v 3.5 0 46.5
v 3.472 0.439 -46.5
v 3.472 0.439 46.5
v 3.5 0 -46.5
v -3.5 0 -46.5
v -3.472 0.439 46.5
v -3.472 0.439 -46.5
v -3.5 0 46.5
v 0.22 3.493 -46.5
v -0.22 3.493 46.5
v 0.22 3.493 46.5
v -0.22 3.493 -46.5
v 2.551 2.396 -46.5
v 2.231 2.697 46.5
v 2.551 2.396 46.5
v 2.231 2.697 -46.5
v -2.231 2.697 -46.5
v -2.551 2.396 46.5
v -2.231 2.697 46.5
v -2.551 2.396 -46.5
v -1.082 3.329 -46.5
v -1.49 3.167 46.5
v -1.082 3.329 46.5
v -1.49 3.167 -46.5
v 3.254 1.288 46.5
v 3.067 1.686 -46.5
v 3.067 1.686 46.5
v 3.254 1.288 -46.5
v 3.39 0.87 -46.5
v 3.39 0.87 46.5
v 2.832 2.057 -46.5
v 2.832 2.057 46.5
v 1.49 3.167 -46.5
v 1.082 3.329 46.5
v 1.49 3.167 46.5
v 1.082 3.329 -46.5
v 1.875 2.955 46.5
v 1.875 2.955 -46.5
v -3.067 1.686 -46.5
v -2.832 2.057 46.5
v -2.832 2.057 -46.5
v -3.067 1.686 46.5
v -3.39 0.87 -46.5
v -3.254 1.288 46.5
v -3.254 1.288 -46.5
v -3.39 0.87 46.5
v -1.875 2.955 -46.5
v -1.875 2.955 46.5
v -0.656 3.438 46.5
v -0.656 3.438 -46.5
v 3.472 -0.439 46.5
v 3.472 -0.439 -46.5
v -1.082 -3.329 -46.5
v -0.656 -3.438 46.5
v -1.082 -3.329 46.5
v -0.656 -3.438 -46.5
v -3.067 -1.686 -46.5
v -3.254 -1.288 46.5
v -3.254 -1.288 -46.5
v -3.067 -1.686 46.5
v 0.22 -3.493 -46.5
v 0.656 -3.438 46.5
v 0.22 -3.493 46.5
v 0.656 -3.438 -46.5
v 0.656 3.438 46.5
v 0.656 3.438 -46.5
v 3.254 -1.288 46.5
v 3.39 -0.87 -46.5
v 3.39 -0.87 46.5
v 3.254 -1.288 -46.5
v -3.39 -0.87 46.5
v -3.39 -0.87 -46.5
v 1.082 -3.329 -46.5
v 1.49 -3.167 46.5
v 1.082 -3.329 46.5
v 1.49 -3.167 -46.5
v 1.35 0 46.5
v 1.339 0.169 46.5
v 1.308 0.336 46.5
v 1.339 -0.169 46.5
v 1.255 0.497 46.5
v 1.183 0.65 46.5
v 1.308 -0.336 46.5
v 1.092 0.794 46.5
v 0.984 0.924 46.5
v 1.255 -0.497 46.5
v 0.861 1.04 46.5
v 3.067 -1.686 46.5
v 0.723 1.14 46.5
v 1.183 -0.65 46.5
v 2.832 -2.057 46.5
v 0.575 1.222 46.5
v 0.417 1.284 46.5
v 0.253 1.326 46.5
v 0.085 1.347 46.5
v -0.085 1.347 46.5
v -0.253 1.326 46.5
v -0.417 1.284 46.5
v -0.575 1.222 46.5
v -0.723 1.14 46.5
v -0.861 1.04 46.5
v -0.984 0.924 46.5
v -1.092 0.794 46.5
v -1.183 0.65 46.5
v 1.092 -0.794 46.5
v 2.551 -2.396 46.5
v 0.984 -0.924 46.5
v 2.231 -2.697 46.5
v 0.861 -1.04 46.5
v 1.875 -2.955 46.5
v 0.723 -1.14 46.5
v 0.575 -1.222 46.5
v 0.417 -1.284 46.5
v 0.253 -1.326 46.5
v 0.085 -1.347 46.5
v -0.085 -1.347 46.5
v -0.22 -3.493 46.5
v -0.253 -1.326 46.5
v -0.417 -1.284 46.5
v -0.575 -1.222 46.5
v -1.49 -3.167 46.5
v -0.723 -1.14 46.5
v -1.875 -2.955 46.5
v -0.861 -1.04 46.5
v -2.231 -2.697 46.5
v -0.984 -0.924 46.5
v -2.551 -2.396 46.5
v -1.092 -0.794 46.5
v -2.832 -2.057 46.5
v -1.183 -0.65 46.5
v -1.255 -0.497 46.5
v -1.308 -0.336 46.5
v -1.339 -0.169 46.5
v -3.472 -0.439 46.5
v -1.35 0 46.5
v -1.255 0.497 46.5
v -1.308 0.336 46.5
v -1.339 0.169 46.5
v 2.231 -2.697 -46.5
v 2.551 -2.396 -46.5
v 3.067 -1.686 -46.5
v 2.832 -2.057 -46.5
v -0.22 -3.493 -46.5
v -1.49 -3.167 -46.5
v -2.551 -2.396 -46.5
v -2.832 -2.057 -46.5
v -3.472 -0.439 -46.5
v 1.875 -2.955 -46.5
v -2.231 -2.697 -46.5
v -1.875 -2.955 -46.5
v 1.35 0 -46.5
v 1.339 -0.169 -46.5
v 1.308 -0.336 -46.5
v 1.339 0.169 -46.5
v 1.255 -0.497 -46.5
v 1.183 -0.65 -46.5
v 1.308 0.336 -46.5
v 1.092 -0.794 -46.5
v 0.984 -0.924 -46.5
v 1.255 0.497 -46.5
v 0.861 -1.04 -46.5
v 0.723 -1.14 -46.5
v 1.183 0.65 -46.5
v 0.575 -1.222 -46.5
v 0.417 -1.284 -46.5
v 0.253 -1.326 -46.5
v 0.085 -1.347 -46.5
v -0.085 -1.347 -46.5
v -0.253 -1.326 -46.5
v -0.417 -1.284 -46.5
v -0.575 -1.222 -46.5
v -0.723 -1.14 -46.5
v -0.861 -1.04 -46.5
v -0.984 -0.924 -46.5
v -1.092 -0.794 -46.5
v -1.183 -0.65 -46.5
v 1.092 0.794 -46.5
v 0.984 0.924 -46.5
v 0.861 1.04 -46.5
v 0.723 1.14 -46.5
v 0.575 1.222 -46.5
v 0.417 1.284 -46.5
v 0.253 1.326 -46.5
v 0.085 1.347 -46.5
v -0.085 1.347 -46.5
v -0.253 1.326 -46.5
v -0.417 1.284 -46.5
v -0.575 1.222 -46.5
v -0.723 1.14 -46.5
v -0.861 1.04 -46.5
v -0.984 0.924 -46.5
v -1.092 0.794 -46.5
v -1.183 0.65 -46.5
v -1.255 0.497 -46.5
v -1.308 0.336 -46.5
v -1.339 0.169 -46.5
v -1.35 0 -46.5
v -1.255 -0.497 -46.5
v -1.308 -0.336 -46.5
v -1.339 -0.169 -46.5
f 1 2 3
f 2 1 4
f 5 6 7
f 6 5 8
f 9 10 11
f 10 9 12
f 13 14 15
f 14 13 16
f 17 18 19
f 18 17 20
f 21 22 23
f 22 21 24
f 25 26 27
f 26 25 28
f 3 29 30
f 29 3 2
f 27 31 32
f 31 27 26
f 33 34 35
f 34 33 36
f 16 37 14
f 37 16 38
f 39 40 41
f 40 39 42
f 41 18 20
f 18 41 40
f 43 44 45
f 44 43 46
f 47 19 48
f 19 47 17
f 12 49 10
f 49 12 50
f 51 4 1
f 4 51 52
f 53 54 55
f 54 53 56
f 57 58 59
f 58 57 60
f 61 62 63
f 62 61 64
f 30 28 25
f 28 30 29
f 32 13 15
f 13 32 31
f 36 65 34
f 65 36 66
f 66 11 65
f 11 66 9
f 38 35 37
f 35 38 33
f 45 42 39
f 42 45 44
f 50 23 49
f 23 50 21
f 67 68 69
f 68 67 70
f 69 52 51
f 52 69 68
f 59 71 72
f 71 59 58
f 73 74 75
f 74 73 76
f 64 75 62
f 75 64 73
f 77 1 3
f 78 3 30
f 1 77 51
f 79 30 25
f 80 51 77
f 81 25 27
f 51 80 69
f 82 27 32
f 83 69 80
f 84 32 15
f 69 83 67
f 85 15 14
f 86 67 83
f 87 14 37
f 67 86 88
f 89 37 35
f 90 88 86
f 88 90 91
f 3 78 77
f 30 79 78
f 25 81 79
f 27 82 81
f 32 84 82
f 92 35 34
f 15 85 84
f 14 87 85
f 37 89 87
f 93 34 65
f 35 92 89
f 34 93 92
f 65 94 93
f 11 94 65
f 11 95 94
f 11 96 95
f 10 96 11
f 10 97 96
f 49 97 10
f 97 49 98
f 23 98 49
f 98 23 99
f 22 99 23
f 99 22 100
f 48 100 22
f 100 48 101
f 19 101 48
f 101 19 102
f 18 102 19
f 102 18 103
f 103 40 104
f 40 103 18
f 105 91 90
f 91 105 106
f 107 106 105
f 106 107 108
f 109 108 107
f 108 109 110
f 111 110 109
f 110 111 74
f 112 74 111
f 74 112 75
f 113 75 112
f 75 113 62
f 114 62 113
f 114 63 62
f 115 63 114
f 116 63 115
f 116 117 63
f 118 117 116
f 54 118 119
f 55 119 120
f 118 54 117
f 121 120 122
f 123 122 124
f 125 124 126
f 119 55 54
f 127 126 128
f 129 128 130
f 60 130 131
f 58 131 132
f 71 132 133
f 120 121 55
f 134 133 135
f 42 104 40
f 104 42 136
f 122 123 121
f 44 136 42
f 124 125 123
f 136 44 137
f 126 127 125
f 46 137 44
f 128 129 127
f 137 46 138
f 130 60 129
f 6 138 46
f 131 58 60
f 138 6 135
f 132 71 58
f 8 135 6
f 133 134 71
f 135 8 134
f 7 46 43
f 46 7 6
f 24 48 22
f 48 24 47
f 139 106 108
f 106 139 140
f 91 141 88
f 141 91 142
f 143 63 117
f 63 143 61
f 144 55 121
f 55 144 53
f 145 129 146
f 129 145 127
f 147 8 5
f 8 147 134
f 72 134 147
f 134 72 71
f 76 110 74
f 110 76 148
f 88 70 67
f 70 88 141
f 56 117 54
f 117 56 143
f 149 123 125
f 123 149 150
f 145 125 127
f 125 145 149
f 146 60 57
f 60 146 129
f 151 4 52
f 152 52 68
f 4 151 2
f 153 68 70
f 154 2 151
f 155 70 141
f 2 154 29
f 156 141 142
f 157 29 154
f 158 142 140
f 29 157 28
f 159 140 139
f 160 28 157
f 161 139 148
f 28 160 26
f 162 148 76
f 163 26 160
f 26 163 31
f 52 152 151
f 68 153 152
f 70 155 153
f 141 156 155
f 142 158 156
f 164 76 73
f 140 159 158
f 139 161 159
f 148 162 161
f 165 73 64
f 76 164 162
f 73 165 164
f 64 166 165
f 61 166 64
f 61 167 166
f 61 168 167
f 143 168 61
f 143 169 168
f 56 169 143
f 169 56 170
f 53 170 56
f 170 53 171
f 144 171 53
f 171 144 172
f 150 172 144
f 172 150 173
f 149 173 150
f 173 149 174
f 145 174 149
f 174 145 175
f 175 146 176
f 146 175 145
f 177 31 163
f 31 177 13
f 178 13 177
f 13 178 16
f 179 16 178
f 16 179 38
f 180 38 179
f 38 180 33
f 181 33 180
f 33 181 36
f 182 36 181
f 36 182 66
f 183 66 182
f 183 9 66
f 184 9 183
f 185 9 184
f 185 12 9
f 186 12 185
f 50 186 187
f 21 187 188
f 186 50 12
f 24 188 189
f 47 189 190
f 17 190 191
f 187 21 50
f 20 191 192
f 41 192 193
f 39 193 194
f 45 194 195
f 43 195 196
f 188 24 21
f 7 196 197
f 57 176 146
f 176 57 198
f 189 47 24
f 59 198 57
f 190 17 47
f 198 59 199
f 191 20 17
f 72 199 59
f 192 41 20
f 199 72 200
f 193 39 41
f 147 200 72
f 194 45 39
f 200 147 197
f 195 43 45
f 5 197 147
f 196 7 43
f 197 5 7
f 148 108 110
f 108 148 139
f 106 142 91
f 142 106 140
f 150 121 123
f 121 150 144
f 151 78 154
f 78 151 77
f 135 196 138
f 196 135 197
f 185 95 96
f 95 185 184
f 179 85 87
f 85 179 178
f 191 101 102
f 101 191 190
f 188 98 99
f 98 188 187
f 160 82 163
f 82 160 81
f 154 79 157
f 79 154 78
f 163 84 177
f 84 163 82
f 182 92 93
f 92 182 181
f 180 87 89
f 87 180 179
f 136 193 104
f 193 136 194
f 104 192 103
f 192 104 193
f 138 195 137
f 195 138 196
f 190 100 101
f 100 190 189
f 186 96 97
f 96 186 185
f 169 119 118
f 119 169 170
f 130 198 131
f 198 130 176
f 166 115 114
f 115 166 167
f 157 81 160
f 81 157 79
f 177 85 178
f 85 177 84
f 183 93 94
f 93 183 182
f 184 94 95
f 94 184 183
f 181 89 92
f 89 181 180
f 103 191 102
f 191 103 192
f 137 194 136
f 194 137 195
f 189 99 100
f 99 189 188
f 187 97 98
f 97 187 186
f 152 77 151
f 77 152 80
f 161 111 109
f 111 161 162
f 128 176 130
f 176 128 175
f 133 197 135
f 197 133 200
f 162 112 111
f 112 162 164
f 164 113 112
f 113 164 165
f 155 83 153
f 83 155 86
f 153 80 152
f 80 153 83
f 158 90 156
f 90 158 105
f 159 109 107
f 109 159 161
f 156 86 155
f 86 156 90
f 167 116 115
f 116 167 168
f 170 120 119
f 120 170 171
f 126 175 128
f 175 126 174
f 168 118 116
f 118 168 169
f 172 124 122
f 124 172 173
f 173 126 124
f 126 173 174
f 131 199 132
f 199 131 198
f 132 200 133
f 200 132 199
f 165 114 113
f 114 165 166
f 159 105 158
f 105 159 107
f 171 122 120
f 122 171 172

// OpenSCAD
$fn = 50;


difference() {
	union() {
		translate(v = [0, 0, -46.5000000000]) {
			cylinder(h = 93, r = 3.5000000000);
		}
	}
	union() {
		translate(v = [0, 0, -100.0000000000]) {
			cylinder(h = 200, r = 1.3500000000);
		}
	}
}
